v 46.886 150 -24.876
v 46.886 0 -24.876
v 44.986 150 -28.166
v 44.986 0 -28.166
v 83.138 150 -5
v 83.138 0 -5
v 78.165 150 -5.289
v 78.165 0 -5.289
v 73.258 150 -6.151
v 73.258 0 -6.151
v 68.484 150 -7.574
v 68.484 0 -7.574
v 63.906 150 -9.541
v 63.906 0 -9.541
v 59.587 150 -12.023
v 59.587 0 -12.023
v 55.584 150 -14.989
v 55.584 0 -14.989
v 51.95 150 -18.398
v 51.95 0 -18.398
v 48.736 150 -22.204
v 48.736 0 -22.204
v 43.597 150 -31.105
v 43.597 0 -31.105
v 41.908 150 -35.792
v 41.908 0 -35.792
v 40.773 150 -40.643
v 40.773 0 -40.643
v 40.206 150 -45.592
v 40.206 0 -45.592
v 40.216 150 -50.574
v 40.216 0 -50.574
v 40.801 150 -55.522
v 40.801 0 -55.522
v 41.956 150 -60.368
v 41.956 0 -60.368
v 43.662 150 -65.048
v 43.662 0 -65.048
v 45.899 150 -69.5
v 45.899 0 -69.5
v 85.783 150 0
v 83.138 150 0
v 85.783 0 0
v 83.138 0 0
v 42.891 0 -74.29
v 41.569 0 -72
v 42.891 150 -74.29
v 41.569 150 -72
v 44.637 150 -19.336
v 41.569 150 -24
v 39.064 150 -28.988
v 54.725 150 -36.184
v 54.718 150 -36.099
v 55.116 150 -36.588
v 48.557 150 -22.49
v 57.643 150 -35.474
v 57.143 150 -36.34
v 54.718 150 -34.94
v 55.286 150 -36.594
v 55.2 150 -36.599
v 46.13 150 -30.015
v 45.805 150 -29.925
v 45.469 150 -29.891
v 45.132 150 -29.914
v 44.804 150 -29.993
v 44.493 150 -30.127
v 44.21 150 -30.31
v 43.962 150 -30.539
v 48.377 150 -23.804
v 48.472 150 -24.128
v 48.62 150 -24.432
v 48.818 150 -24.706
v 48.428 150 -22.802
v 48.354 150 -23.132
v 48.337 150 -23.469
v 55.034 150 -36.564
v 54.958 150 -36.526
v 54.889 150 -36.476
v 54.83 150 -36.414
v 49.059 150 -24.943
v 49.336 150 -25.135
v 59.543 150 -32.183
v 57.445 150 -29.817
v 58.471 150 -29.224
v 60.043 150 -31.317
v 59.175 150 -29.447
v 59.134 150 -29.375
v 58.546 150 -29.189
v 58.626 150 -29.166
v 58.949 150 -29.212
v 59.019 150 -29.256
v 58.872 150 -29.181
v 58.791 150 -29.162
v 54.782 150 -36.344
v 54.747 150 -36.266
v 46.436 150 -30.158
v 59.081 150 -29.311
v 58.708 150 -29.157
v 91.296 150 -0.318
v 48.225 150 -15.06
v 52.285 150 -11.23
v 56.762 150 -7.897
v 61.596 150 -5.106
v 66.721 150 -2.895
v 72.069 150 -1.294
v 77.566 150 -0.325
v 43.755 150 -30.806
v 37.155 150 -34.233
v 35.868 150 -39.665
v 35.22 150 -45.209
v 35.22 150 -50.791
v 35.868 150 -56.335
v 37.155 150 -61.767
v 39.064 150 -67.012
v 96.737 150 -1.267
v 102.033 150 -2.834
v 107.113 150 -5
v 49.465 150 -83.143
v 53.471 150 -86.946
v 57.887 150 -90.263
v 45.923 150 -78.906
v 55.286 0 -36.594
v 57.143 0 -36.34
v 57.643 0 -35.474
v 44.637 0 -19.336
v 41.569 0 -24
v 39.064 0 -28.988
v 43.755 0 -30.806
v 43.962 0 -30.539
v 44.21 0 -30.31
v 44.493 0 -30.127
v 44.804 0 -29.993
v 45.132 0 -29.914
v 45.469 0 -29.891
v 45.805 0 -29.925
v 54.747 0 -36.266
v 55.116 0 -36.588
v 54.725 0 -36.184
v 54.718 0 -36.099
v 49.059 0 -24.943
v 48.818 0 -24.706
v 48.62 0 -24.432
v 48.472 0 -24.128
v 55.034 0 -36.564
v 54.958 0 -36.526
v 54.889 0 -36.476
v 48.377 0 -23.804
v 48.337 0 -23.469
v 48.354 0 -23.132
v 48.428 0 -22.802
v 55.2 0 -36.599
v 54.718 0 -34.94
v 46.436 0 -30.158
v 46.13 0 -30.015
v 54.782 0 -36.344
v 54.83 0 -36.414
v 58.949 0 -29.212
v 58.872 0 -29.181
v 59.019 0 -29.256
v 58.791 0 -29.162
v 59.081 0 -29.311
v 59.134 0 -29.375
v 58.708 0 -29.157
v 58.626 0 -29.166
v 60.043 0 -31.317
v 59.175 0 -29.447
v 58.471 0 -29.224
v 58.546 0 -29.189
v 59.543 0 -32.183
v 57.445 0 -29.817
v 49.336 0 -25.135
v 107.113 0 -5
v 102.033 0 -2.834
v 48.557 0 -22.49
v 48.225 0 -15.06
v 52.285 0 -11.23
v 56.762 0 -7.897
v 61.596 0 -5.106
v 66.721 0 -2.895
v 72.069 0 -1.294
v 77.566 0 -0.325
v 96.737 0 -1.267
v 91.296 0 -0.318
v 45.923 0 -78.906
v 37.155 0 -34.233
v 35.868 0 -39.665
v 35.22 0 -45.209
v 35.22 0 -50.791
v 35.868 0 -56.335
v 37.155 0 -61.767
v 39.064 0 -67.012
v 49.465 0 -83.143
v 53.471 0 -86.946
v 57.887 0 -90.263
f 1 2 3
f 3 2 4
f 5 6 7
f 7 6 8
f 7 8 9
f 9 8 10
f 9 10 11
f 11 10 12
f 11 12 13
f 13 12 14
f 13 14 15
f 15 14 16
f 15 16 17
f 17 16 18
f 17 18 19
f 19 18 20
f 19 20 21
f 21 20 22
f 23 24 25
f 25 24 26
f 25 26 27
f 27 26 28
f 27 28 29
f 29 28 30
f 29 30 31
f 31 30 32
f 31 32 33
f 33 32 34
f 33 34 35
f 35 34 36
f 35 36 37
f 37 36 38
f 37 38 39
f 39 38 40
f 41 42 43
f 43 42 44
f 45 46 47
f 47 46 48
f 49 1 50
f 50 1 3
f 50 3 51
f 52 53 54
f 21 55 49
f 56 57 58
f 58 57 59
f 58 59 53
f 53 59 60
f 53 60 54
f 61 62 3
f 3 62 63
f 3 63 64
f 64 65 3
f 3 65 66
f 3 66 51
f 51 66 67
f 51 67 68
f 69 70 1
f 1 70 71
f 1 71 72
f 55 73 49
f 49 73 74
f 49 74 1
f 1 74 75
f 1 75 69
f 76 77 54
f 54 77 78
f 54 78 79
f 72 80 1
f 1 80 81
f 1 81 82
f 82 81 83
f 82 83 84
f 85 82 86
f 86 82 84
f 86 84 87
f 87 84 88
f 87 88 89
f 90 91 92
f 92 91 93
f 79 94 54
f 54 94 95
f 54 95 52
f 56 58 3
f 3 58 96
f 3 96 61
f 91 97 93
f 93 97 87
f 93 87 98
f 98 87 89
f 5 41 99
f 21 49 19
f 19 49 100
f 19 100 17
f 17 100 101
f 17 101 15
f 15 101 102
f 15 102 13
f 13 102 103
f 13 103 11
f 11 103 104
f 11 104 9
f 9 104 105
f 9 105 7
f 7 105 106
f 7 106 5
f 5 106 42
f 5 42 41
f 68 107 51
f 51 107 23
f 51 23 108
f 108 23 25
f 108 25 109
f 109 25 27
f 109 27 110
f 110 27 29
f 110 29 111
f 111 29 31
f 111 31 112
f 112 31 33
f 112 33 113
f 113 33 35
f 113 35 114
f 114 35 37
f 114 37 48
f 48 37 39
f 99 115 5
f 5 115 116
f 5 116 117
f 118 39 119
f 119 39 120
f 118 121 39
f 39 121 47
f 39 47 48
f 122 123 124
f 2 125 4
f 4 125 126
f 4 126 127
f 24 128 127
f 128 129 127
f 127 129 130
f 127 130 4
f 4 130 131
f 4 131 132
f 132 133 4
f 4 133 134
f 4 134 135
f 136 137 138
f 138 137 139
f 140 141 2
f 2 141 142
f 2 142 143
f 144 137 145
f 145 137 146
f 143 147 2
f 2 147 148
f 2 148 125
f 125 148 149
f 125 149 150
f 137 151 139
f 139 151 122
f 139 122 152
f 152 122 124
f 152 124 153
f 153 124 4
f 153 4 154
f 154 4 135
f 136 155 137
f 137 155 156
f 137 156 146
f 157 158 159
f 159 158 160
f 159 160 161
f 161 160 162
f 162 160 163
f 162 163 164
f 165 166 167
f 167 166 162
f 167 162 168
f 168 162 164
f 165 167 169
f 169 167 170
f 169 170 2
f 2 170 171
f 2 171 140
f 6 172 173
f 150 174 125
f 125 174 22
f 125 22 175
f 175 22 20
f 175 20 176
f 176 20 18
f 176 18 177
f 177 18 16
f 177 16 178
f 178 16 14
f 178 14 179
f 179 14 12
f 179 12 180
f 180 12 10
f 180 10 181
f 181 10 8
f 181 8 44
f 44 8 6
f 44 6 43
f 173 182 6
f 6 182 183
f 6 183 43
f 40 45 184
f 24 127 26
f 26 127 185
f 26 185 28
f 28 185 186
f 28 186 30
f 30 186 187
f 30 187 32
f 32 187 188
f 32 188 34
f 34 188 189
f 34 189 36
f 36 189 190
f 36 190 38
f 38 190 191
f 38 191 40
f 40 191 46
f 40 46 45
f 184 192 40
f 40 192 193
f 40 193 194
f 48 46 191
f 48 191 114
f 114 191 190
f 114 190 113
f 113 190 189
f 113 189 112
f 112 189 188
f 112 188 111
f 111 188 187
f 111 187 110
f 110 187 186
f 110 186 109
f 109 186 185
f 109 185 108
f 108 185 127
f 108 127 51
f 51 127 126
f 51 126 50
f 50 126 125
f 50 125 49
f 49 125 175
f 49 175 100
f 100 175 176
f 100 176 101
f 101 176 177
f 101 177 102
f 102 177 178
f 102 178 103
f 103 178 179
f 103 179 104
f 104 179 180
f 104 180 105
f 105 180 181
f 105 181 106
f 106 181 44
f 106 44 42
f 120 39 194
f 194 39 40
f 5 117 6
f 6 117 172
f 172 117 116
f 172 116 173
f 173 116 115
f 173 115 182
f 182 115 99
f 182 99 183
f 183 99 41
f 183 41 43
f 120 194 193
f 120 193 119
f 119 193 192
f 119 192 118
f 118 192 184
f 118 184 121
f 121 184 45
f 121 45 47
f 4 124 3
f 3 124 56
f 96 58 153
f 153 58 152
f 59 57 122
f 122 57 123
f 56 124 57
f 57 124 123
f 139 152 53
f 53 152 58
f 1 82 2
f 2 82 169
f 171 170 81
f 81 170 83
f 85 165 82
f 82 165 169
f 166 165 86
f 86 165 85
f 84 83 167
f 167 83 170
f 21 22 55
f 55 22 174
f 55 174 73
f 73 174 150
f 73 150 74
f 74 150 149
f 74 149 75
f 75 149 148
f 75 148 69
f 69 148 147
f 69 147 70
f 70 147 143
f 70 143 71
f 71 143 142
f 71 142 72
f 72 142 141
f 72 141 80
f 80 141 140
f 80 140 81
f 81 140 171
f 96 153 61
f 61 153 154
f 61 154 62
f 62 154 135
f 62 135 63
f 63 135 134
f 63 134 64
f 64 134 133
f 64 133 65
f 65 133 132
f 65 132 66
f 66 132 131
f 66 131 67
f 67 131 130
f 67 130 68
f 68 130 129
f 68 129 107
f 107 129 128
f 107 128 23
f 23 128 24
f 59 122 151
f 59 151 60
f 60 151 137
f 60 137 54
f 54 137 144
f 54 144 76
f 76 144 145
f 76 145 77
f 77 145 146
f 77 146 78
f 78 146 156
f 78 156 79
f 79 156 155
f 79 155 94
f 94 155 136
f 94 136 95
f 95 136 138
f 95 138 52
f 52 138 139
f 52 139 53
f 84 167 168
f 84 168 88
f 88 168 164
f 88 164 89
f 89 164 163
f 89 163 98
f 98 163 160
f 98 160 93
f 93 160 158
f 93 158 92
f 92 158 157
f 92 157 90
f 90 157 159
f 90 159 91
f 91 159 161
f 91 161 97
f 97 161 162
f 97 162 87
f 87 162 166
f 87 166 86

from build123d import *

# Parameters (mm, degrees)
BOSS_EXTRUDE1_DEPTH     = 150
FILLET1_R               = 48
CUT_EXTRUDE1_DEPTH      = 201
CUT_EXTRUDE1_DEPTH_BACK = 201
BOSS_EXTRUDE2_DEPTH     = 150
FILLET2_R               = 48
BOSS_EXTRUDE3_DEPTH     = 150
FILLET3_R               = 2
FILLET4_R               = 0.5


with BuildPart() as part:
    # Sketch1 → Boss-Extrude1 (new body)
    with BuildSketch(Plane(origin=(0, 0, 0), x_dir=(1, 0, 0), z_dir=(0, 1, 0))):
        Polygon((0, 0), (50, 86.602540378), (100, 0), align=None)
    extrude(amount=BOSS_EXTRUDE1_DEPTH)

    # Fillet1
    fillet1_edges = [part.edges().sort_by_distance(p)[0] for p in [
        (0, 75, 0),
    ]]
    fillet(fillet1_edges, radius=FILLET1_R)

    # Sketch3 → Cut-Extrude1 (cut, two sides: drawn at the far end of the back side and taken through both)
    with BuildSketch(Plane.XZ.offset(-CUT_EXTRUDE1_DEPTH_BACK)):
        with BuildLine():
            Line((45.899346401, -69.5), (52.886751346, -81.602540378))
            Line((52.886751346, -81.602540378), (97.113248654, -5))
            Line((97.113248654, -5), (83.138438763, -5))
            ThreePointArc((83.138438763, -5), (45.899346401, -26.5), (45.899346401, -69.5))
        make_face()
    extrude(amount=CUT_EXTRUDE1_DEPTH + CUT_EXTRUDE1_DEPTH_BACK, mode=Mode.SUBTRACT)

    # Sketch4 → Boss-Extrude2 (add)
    with BuildSketch(Plane(origin=(0, 0, 0), x_dir=(1, 0, 0), z_dir=(0, 1, 0))):
        Polygon((50, 86.602540378), (57.886751346, 90.262794416), (52.886751346, 81.602540378), align=None)
        Polygon((97.113248654, 5), (100, 0), (107.113248654, 5), align=None)
    extrude(amount=BOSS_EXTRUDE2_DEPTH)

    # Fillet2
    # the kernel refuses this fillet: 48 mm, written as the material it takes off along each edge
    with BuildSketch(Plane(origin=(50, -35.543700884, -86.602540378), x_dir=(-0.5000000000000046, 0, 0.8660254037844362), z_dir=(0, 1, 0))) as fillet2_piece_1:
        with BuildLine():
            CenterArc((14.217480354, 48), FILLET2_R, 243.615670251, 26.384329749)
            Line((-7.113248654, 5), (-7.539863234, 4.14))
            ThreePointArc((-7.539863234, 4.14), (-4.108682958, 1.714613937), (-0.552058631, -0.785386063))
            Line((-0.552058631, -0.785386063), (0, -0.96))
            Line((0, -0.96), (14.217480354, -0.96))
            Line((14.217480354, -0.96), (14.217480354, 0))
        make_face()
    extrude(amount=221.087401768, mode=Mode.SUBTRACT)
    with BuildSketch(Plane(origin=(100, -35.543700884, 0), x_dir=(-1, 0, 0), z_dir=(0, 1, 0))) as fillet2_piece_2:
        with BuildLine():
            CenterArc((14.217480354, -48), FILLET2_R, 90, 26.384329749)
            Line((-7.113248654, -5), (-7.539863234, -4.14))
            ThreePointArc((-7.539863234, -4.14), (-4.108682958, -1.714613937), (-0.552058631, 0.785386063))
            Line((-0.552058631, 0.785386063), (0, 0.96))
            Line((0, 0.96), (14.217480354, 0.96))
            Line((14.217480354, 0.96), (14.217480354, 0))
        make_face()
    extrude(amount=221.087401768, mode=Mode.SUBTRACT)

    # Sketch5 → Boss-Extrude3 (add)
    with BuildSketch(Plane(origin=(0, 0, 0), x_dir=(1, 0, 0), z_dir=(0, 1, 0))):
        Polygon((54.717765705, 36.671999128), (57.142636836, 36.339948321), (57.642636836, 35.473922917), (43.850262737, 27.510892018), (43.385383074, 28.397194158), (54.717765705, 34.939948321), align=None)
        Polygon((59.542636836, 32.183026382), (60.042636836, 31.317000979), (58.944560624, 28.950975575), (57.444560624, 29.817000979), (45.904890393, 23.154569264), (45.509810975, 24.081170595), align=None)
    extrude(amount=BOSS_EXTRUDE3_DEPTH)

    # Fillet3
    fillet3_edges = [part.edges().sort_by_distance(p)[0] for p in [
        (44.534132149, 75, -29.060424746),
        (47.434132149, 75, -24.037477404),
    ]]
    fillet(fillet3_edges, radius=FILLET3_R)

    # Fillet4
    fillet4_edges = [part.edges().sort_by_distance(p)[0] for p in [
        (54.717765705, 75, -36.671999128),
        (58.944560624, 75, -28.950975575),
    ]]
    fillet(fillet4_edges, radius=FILLET4_R)


solid = part.part
